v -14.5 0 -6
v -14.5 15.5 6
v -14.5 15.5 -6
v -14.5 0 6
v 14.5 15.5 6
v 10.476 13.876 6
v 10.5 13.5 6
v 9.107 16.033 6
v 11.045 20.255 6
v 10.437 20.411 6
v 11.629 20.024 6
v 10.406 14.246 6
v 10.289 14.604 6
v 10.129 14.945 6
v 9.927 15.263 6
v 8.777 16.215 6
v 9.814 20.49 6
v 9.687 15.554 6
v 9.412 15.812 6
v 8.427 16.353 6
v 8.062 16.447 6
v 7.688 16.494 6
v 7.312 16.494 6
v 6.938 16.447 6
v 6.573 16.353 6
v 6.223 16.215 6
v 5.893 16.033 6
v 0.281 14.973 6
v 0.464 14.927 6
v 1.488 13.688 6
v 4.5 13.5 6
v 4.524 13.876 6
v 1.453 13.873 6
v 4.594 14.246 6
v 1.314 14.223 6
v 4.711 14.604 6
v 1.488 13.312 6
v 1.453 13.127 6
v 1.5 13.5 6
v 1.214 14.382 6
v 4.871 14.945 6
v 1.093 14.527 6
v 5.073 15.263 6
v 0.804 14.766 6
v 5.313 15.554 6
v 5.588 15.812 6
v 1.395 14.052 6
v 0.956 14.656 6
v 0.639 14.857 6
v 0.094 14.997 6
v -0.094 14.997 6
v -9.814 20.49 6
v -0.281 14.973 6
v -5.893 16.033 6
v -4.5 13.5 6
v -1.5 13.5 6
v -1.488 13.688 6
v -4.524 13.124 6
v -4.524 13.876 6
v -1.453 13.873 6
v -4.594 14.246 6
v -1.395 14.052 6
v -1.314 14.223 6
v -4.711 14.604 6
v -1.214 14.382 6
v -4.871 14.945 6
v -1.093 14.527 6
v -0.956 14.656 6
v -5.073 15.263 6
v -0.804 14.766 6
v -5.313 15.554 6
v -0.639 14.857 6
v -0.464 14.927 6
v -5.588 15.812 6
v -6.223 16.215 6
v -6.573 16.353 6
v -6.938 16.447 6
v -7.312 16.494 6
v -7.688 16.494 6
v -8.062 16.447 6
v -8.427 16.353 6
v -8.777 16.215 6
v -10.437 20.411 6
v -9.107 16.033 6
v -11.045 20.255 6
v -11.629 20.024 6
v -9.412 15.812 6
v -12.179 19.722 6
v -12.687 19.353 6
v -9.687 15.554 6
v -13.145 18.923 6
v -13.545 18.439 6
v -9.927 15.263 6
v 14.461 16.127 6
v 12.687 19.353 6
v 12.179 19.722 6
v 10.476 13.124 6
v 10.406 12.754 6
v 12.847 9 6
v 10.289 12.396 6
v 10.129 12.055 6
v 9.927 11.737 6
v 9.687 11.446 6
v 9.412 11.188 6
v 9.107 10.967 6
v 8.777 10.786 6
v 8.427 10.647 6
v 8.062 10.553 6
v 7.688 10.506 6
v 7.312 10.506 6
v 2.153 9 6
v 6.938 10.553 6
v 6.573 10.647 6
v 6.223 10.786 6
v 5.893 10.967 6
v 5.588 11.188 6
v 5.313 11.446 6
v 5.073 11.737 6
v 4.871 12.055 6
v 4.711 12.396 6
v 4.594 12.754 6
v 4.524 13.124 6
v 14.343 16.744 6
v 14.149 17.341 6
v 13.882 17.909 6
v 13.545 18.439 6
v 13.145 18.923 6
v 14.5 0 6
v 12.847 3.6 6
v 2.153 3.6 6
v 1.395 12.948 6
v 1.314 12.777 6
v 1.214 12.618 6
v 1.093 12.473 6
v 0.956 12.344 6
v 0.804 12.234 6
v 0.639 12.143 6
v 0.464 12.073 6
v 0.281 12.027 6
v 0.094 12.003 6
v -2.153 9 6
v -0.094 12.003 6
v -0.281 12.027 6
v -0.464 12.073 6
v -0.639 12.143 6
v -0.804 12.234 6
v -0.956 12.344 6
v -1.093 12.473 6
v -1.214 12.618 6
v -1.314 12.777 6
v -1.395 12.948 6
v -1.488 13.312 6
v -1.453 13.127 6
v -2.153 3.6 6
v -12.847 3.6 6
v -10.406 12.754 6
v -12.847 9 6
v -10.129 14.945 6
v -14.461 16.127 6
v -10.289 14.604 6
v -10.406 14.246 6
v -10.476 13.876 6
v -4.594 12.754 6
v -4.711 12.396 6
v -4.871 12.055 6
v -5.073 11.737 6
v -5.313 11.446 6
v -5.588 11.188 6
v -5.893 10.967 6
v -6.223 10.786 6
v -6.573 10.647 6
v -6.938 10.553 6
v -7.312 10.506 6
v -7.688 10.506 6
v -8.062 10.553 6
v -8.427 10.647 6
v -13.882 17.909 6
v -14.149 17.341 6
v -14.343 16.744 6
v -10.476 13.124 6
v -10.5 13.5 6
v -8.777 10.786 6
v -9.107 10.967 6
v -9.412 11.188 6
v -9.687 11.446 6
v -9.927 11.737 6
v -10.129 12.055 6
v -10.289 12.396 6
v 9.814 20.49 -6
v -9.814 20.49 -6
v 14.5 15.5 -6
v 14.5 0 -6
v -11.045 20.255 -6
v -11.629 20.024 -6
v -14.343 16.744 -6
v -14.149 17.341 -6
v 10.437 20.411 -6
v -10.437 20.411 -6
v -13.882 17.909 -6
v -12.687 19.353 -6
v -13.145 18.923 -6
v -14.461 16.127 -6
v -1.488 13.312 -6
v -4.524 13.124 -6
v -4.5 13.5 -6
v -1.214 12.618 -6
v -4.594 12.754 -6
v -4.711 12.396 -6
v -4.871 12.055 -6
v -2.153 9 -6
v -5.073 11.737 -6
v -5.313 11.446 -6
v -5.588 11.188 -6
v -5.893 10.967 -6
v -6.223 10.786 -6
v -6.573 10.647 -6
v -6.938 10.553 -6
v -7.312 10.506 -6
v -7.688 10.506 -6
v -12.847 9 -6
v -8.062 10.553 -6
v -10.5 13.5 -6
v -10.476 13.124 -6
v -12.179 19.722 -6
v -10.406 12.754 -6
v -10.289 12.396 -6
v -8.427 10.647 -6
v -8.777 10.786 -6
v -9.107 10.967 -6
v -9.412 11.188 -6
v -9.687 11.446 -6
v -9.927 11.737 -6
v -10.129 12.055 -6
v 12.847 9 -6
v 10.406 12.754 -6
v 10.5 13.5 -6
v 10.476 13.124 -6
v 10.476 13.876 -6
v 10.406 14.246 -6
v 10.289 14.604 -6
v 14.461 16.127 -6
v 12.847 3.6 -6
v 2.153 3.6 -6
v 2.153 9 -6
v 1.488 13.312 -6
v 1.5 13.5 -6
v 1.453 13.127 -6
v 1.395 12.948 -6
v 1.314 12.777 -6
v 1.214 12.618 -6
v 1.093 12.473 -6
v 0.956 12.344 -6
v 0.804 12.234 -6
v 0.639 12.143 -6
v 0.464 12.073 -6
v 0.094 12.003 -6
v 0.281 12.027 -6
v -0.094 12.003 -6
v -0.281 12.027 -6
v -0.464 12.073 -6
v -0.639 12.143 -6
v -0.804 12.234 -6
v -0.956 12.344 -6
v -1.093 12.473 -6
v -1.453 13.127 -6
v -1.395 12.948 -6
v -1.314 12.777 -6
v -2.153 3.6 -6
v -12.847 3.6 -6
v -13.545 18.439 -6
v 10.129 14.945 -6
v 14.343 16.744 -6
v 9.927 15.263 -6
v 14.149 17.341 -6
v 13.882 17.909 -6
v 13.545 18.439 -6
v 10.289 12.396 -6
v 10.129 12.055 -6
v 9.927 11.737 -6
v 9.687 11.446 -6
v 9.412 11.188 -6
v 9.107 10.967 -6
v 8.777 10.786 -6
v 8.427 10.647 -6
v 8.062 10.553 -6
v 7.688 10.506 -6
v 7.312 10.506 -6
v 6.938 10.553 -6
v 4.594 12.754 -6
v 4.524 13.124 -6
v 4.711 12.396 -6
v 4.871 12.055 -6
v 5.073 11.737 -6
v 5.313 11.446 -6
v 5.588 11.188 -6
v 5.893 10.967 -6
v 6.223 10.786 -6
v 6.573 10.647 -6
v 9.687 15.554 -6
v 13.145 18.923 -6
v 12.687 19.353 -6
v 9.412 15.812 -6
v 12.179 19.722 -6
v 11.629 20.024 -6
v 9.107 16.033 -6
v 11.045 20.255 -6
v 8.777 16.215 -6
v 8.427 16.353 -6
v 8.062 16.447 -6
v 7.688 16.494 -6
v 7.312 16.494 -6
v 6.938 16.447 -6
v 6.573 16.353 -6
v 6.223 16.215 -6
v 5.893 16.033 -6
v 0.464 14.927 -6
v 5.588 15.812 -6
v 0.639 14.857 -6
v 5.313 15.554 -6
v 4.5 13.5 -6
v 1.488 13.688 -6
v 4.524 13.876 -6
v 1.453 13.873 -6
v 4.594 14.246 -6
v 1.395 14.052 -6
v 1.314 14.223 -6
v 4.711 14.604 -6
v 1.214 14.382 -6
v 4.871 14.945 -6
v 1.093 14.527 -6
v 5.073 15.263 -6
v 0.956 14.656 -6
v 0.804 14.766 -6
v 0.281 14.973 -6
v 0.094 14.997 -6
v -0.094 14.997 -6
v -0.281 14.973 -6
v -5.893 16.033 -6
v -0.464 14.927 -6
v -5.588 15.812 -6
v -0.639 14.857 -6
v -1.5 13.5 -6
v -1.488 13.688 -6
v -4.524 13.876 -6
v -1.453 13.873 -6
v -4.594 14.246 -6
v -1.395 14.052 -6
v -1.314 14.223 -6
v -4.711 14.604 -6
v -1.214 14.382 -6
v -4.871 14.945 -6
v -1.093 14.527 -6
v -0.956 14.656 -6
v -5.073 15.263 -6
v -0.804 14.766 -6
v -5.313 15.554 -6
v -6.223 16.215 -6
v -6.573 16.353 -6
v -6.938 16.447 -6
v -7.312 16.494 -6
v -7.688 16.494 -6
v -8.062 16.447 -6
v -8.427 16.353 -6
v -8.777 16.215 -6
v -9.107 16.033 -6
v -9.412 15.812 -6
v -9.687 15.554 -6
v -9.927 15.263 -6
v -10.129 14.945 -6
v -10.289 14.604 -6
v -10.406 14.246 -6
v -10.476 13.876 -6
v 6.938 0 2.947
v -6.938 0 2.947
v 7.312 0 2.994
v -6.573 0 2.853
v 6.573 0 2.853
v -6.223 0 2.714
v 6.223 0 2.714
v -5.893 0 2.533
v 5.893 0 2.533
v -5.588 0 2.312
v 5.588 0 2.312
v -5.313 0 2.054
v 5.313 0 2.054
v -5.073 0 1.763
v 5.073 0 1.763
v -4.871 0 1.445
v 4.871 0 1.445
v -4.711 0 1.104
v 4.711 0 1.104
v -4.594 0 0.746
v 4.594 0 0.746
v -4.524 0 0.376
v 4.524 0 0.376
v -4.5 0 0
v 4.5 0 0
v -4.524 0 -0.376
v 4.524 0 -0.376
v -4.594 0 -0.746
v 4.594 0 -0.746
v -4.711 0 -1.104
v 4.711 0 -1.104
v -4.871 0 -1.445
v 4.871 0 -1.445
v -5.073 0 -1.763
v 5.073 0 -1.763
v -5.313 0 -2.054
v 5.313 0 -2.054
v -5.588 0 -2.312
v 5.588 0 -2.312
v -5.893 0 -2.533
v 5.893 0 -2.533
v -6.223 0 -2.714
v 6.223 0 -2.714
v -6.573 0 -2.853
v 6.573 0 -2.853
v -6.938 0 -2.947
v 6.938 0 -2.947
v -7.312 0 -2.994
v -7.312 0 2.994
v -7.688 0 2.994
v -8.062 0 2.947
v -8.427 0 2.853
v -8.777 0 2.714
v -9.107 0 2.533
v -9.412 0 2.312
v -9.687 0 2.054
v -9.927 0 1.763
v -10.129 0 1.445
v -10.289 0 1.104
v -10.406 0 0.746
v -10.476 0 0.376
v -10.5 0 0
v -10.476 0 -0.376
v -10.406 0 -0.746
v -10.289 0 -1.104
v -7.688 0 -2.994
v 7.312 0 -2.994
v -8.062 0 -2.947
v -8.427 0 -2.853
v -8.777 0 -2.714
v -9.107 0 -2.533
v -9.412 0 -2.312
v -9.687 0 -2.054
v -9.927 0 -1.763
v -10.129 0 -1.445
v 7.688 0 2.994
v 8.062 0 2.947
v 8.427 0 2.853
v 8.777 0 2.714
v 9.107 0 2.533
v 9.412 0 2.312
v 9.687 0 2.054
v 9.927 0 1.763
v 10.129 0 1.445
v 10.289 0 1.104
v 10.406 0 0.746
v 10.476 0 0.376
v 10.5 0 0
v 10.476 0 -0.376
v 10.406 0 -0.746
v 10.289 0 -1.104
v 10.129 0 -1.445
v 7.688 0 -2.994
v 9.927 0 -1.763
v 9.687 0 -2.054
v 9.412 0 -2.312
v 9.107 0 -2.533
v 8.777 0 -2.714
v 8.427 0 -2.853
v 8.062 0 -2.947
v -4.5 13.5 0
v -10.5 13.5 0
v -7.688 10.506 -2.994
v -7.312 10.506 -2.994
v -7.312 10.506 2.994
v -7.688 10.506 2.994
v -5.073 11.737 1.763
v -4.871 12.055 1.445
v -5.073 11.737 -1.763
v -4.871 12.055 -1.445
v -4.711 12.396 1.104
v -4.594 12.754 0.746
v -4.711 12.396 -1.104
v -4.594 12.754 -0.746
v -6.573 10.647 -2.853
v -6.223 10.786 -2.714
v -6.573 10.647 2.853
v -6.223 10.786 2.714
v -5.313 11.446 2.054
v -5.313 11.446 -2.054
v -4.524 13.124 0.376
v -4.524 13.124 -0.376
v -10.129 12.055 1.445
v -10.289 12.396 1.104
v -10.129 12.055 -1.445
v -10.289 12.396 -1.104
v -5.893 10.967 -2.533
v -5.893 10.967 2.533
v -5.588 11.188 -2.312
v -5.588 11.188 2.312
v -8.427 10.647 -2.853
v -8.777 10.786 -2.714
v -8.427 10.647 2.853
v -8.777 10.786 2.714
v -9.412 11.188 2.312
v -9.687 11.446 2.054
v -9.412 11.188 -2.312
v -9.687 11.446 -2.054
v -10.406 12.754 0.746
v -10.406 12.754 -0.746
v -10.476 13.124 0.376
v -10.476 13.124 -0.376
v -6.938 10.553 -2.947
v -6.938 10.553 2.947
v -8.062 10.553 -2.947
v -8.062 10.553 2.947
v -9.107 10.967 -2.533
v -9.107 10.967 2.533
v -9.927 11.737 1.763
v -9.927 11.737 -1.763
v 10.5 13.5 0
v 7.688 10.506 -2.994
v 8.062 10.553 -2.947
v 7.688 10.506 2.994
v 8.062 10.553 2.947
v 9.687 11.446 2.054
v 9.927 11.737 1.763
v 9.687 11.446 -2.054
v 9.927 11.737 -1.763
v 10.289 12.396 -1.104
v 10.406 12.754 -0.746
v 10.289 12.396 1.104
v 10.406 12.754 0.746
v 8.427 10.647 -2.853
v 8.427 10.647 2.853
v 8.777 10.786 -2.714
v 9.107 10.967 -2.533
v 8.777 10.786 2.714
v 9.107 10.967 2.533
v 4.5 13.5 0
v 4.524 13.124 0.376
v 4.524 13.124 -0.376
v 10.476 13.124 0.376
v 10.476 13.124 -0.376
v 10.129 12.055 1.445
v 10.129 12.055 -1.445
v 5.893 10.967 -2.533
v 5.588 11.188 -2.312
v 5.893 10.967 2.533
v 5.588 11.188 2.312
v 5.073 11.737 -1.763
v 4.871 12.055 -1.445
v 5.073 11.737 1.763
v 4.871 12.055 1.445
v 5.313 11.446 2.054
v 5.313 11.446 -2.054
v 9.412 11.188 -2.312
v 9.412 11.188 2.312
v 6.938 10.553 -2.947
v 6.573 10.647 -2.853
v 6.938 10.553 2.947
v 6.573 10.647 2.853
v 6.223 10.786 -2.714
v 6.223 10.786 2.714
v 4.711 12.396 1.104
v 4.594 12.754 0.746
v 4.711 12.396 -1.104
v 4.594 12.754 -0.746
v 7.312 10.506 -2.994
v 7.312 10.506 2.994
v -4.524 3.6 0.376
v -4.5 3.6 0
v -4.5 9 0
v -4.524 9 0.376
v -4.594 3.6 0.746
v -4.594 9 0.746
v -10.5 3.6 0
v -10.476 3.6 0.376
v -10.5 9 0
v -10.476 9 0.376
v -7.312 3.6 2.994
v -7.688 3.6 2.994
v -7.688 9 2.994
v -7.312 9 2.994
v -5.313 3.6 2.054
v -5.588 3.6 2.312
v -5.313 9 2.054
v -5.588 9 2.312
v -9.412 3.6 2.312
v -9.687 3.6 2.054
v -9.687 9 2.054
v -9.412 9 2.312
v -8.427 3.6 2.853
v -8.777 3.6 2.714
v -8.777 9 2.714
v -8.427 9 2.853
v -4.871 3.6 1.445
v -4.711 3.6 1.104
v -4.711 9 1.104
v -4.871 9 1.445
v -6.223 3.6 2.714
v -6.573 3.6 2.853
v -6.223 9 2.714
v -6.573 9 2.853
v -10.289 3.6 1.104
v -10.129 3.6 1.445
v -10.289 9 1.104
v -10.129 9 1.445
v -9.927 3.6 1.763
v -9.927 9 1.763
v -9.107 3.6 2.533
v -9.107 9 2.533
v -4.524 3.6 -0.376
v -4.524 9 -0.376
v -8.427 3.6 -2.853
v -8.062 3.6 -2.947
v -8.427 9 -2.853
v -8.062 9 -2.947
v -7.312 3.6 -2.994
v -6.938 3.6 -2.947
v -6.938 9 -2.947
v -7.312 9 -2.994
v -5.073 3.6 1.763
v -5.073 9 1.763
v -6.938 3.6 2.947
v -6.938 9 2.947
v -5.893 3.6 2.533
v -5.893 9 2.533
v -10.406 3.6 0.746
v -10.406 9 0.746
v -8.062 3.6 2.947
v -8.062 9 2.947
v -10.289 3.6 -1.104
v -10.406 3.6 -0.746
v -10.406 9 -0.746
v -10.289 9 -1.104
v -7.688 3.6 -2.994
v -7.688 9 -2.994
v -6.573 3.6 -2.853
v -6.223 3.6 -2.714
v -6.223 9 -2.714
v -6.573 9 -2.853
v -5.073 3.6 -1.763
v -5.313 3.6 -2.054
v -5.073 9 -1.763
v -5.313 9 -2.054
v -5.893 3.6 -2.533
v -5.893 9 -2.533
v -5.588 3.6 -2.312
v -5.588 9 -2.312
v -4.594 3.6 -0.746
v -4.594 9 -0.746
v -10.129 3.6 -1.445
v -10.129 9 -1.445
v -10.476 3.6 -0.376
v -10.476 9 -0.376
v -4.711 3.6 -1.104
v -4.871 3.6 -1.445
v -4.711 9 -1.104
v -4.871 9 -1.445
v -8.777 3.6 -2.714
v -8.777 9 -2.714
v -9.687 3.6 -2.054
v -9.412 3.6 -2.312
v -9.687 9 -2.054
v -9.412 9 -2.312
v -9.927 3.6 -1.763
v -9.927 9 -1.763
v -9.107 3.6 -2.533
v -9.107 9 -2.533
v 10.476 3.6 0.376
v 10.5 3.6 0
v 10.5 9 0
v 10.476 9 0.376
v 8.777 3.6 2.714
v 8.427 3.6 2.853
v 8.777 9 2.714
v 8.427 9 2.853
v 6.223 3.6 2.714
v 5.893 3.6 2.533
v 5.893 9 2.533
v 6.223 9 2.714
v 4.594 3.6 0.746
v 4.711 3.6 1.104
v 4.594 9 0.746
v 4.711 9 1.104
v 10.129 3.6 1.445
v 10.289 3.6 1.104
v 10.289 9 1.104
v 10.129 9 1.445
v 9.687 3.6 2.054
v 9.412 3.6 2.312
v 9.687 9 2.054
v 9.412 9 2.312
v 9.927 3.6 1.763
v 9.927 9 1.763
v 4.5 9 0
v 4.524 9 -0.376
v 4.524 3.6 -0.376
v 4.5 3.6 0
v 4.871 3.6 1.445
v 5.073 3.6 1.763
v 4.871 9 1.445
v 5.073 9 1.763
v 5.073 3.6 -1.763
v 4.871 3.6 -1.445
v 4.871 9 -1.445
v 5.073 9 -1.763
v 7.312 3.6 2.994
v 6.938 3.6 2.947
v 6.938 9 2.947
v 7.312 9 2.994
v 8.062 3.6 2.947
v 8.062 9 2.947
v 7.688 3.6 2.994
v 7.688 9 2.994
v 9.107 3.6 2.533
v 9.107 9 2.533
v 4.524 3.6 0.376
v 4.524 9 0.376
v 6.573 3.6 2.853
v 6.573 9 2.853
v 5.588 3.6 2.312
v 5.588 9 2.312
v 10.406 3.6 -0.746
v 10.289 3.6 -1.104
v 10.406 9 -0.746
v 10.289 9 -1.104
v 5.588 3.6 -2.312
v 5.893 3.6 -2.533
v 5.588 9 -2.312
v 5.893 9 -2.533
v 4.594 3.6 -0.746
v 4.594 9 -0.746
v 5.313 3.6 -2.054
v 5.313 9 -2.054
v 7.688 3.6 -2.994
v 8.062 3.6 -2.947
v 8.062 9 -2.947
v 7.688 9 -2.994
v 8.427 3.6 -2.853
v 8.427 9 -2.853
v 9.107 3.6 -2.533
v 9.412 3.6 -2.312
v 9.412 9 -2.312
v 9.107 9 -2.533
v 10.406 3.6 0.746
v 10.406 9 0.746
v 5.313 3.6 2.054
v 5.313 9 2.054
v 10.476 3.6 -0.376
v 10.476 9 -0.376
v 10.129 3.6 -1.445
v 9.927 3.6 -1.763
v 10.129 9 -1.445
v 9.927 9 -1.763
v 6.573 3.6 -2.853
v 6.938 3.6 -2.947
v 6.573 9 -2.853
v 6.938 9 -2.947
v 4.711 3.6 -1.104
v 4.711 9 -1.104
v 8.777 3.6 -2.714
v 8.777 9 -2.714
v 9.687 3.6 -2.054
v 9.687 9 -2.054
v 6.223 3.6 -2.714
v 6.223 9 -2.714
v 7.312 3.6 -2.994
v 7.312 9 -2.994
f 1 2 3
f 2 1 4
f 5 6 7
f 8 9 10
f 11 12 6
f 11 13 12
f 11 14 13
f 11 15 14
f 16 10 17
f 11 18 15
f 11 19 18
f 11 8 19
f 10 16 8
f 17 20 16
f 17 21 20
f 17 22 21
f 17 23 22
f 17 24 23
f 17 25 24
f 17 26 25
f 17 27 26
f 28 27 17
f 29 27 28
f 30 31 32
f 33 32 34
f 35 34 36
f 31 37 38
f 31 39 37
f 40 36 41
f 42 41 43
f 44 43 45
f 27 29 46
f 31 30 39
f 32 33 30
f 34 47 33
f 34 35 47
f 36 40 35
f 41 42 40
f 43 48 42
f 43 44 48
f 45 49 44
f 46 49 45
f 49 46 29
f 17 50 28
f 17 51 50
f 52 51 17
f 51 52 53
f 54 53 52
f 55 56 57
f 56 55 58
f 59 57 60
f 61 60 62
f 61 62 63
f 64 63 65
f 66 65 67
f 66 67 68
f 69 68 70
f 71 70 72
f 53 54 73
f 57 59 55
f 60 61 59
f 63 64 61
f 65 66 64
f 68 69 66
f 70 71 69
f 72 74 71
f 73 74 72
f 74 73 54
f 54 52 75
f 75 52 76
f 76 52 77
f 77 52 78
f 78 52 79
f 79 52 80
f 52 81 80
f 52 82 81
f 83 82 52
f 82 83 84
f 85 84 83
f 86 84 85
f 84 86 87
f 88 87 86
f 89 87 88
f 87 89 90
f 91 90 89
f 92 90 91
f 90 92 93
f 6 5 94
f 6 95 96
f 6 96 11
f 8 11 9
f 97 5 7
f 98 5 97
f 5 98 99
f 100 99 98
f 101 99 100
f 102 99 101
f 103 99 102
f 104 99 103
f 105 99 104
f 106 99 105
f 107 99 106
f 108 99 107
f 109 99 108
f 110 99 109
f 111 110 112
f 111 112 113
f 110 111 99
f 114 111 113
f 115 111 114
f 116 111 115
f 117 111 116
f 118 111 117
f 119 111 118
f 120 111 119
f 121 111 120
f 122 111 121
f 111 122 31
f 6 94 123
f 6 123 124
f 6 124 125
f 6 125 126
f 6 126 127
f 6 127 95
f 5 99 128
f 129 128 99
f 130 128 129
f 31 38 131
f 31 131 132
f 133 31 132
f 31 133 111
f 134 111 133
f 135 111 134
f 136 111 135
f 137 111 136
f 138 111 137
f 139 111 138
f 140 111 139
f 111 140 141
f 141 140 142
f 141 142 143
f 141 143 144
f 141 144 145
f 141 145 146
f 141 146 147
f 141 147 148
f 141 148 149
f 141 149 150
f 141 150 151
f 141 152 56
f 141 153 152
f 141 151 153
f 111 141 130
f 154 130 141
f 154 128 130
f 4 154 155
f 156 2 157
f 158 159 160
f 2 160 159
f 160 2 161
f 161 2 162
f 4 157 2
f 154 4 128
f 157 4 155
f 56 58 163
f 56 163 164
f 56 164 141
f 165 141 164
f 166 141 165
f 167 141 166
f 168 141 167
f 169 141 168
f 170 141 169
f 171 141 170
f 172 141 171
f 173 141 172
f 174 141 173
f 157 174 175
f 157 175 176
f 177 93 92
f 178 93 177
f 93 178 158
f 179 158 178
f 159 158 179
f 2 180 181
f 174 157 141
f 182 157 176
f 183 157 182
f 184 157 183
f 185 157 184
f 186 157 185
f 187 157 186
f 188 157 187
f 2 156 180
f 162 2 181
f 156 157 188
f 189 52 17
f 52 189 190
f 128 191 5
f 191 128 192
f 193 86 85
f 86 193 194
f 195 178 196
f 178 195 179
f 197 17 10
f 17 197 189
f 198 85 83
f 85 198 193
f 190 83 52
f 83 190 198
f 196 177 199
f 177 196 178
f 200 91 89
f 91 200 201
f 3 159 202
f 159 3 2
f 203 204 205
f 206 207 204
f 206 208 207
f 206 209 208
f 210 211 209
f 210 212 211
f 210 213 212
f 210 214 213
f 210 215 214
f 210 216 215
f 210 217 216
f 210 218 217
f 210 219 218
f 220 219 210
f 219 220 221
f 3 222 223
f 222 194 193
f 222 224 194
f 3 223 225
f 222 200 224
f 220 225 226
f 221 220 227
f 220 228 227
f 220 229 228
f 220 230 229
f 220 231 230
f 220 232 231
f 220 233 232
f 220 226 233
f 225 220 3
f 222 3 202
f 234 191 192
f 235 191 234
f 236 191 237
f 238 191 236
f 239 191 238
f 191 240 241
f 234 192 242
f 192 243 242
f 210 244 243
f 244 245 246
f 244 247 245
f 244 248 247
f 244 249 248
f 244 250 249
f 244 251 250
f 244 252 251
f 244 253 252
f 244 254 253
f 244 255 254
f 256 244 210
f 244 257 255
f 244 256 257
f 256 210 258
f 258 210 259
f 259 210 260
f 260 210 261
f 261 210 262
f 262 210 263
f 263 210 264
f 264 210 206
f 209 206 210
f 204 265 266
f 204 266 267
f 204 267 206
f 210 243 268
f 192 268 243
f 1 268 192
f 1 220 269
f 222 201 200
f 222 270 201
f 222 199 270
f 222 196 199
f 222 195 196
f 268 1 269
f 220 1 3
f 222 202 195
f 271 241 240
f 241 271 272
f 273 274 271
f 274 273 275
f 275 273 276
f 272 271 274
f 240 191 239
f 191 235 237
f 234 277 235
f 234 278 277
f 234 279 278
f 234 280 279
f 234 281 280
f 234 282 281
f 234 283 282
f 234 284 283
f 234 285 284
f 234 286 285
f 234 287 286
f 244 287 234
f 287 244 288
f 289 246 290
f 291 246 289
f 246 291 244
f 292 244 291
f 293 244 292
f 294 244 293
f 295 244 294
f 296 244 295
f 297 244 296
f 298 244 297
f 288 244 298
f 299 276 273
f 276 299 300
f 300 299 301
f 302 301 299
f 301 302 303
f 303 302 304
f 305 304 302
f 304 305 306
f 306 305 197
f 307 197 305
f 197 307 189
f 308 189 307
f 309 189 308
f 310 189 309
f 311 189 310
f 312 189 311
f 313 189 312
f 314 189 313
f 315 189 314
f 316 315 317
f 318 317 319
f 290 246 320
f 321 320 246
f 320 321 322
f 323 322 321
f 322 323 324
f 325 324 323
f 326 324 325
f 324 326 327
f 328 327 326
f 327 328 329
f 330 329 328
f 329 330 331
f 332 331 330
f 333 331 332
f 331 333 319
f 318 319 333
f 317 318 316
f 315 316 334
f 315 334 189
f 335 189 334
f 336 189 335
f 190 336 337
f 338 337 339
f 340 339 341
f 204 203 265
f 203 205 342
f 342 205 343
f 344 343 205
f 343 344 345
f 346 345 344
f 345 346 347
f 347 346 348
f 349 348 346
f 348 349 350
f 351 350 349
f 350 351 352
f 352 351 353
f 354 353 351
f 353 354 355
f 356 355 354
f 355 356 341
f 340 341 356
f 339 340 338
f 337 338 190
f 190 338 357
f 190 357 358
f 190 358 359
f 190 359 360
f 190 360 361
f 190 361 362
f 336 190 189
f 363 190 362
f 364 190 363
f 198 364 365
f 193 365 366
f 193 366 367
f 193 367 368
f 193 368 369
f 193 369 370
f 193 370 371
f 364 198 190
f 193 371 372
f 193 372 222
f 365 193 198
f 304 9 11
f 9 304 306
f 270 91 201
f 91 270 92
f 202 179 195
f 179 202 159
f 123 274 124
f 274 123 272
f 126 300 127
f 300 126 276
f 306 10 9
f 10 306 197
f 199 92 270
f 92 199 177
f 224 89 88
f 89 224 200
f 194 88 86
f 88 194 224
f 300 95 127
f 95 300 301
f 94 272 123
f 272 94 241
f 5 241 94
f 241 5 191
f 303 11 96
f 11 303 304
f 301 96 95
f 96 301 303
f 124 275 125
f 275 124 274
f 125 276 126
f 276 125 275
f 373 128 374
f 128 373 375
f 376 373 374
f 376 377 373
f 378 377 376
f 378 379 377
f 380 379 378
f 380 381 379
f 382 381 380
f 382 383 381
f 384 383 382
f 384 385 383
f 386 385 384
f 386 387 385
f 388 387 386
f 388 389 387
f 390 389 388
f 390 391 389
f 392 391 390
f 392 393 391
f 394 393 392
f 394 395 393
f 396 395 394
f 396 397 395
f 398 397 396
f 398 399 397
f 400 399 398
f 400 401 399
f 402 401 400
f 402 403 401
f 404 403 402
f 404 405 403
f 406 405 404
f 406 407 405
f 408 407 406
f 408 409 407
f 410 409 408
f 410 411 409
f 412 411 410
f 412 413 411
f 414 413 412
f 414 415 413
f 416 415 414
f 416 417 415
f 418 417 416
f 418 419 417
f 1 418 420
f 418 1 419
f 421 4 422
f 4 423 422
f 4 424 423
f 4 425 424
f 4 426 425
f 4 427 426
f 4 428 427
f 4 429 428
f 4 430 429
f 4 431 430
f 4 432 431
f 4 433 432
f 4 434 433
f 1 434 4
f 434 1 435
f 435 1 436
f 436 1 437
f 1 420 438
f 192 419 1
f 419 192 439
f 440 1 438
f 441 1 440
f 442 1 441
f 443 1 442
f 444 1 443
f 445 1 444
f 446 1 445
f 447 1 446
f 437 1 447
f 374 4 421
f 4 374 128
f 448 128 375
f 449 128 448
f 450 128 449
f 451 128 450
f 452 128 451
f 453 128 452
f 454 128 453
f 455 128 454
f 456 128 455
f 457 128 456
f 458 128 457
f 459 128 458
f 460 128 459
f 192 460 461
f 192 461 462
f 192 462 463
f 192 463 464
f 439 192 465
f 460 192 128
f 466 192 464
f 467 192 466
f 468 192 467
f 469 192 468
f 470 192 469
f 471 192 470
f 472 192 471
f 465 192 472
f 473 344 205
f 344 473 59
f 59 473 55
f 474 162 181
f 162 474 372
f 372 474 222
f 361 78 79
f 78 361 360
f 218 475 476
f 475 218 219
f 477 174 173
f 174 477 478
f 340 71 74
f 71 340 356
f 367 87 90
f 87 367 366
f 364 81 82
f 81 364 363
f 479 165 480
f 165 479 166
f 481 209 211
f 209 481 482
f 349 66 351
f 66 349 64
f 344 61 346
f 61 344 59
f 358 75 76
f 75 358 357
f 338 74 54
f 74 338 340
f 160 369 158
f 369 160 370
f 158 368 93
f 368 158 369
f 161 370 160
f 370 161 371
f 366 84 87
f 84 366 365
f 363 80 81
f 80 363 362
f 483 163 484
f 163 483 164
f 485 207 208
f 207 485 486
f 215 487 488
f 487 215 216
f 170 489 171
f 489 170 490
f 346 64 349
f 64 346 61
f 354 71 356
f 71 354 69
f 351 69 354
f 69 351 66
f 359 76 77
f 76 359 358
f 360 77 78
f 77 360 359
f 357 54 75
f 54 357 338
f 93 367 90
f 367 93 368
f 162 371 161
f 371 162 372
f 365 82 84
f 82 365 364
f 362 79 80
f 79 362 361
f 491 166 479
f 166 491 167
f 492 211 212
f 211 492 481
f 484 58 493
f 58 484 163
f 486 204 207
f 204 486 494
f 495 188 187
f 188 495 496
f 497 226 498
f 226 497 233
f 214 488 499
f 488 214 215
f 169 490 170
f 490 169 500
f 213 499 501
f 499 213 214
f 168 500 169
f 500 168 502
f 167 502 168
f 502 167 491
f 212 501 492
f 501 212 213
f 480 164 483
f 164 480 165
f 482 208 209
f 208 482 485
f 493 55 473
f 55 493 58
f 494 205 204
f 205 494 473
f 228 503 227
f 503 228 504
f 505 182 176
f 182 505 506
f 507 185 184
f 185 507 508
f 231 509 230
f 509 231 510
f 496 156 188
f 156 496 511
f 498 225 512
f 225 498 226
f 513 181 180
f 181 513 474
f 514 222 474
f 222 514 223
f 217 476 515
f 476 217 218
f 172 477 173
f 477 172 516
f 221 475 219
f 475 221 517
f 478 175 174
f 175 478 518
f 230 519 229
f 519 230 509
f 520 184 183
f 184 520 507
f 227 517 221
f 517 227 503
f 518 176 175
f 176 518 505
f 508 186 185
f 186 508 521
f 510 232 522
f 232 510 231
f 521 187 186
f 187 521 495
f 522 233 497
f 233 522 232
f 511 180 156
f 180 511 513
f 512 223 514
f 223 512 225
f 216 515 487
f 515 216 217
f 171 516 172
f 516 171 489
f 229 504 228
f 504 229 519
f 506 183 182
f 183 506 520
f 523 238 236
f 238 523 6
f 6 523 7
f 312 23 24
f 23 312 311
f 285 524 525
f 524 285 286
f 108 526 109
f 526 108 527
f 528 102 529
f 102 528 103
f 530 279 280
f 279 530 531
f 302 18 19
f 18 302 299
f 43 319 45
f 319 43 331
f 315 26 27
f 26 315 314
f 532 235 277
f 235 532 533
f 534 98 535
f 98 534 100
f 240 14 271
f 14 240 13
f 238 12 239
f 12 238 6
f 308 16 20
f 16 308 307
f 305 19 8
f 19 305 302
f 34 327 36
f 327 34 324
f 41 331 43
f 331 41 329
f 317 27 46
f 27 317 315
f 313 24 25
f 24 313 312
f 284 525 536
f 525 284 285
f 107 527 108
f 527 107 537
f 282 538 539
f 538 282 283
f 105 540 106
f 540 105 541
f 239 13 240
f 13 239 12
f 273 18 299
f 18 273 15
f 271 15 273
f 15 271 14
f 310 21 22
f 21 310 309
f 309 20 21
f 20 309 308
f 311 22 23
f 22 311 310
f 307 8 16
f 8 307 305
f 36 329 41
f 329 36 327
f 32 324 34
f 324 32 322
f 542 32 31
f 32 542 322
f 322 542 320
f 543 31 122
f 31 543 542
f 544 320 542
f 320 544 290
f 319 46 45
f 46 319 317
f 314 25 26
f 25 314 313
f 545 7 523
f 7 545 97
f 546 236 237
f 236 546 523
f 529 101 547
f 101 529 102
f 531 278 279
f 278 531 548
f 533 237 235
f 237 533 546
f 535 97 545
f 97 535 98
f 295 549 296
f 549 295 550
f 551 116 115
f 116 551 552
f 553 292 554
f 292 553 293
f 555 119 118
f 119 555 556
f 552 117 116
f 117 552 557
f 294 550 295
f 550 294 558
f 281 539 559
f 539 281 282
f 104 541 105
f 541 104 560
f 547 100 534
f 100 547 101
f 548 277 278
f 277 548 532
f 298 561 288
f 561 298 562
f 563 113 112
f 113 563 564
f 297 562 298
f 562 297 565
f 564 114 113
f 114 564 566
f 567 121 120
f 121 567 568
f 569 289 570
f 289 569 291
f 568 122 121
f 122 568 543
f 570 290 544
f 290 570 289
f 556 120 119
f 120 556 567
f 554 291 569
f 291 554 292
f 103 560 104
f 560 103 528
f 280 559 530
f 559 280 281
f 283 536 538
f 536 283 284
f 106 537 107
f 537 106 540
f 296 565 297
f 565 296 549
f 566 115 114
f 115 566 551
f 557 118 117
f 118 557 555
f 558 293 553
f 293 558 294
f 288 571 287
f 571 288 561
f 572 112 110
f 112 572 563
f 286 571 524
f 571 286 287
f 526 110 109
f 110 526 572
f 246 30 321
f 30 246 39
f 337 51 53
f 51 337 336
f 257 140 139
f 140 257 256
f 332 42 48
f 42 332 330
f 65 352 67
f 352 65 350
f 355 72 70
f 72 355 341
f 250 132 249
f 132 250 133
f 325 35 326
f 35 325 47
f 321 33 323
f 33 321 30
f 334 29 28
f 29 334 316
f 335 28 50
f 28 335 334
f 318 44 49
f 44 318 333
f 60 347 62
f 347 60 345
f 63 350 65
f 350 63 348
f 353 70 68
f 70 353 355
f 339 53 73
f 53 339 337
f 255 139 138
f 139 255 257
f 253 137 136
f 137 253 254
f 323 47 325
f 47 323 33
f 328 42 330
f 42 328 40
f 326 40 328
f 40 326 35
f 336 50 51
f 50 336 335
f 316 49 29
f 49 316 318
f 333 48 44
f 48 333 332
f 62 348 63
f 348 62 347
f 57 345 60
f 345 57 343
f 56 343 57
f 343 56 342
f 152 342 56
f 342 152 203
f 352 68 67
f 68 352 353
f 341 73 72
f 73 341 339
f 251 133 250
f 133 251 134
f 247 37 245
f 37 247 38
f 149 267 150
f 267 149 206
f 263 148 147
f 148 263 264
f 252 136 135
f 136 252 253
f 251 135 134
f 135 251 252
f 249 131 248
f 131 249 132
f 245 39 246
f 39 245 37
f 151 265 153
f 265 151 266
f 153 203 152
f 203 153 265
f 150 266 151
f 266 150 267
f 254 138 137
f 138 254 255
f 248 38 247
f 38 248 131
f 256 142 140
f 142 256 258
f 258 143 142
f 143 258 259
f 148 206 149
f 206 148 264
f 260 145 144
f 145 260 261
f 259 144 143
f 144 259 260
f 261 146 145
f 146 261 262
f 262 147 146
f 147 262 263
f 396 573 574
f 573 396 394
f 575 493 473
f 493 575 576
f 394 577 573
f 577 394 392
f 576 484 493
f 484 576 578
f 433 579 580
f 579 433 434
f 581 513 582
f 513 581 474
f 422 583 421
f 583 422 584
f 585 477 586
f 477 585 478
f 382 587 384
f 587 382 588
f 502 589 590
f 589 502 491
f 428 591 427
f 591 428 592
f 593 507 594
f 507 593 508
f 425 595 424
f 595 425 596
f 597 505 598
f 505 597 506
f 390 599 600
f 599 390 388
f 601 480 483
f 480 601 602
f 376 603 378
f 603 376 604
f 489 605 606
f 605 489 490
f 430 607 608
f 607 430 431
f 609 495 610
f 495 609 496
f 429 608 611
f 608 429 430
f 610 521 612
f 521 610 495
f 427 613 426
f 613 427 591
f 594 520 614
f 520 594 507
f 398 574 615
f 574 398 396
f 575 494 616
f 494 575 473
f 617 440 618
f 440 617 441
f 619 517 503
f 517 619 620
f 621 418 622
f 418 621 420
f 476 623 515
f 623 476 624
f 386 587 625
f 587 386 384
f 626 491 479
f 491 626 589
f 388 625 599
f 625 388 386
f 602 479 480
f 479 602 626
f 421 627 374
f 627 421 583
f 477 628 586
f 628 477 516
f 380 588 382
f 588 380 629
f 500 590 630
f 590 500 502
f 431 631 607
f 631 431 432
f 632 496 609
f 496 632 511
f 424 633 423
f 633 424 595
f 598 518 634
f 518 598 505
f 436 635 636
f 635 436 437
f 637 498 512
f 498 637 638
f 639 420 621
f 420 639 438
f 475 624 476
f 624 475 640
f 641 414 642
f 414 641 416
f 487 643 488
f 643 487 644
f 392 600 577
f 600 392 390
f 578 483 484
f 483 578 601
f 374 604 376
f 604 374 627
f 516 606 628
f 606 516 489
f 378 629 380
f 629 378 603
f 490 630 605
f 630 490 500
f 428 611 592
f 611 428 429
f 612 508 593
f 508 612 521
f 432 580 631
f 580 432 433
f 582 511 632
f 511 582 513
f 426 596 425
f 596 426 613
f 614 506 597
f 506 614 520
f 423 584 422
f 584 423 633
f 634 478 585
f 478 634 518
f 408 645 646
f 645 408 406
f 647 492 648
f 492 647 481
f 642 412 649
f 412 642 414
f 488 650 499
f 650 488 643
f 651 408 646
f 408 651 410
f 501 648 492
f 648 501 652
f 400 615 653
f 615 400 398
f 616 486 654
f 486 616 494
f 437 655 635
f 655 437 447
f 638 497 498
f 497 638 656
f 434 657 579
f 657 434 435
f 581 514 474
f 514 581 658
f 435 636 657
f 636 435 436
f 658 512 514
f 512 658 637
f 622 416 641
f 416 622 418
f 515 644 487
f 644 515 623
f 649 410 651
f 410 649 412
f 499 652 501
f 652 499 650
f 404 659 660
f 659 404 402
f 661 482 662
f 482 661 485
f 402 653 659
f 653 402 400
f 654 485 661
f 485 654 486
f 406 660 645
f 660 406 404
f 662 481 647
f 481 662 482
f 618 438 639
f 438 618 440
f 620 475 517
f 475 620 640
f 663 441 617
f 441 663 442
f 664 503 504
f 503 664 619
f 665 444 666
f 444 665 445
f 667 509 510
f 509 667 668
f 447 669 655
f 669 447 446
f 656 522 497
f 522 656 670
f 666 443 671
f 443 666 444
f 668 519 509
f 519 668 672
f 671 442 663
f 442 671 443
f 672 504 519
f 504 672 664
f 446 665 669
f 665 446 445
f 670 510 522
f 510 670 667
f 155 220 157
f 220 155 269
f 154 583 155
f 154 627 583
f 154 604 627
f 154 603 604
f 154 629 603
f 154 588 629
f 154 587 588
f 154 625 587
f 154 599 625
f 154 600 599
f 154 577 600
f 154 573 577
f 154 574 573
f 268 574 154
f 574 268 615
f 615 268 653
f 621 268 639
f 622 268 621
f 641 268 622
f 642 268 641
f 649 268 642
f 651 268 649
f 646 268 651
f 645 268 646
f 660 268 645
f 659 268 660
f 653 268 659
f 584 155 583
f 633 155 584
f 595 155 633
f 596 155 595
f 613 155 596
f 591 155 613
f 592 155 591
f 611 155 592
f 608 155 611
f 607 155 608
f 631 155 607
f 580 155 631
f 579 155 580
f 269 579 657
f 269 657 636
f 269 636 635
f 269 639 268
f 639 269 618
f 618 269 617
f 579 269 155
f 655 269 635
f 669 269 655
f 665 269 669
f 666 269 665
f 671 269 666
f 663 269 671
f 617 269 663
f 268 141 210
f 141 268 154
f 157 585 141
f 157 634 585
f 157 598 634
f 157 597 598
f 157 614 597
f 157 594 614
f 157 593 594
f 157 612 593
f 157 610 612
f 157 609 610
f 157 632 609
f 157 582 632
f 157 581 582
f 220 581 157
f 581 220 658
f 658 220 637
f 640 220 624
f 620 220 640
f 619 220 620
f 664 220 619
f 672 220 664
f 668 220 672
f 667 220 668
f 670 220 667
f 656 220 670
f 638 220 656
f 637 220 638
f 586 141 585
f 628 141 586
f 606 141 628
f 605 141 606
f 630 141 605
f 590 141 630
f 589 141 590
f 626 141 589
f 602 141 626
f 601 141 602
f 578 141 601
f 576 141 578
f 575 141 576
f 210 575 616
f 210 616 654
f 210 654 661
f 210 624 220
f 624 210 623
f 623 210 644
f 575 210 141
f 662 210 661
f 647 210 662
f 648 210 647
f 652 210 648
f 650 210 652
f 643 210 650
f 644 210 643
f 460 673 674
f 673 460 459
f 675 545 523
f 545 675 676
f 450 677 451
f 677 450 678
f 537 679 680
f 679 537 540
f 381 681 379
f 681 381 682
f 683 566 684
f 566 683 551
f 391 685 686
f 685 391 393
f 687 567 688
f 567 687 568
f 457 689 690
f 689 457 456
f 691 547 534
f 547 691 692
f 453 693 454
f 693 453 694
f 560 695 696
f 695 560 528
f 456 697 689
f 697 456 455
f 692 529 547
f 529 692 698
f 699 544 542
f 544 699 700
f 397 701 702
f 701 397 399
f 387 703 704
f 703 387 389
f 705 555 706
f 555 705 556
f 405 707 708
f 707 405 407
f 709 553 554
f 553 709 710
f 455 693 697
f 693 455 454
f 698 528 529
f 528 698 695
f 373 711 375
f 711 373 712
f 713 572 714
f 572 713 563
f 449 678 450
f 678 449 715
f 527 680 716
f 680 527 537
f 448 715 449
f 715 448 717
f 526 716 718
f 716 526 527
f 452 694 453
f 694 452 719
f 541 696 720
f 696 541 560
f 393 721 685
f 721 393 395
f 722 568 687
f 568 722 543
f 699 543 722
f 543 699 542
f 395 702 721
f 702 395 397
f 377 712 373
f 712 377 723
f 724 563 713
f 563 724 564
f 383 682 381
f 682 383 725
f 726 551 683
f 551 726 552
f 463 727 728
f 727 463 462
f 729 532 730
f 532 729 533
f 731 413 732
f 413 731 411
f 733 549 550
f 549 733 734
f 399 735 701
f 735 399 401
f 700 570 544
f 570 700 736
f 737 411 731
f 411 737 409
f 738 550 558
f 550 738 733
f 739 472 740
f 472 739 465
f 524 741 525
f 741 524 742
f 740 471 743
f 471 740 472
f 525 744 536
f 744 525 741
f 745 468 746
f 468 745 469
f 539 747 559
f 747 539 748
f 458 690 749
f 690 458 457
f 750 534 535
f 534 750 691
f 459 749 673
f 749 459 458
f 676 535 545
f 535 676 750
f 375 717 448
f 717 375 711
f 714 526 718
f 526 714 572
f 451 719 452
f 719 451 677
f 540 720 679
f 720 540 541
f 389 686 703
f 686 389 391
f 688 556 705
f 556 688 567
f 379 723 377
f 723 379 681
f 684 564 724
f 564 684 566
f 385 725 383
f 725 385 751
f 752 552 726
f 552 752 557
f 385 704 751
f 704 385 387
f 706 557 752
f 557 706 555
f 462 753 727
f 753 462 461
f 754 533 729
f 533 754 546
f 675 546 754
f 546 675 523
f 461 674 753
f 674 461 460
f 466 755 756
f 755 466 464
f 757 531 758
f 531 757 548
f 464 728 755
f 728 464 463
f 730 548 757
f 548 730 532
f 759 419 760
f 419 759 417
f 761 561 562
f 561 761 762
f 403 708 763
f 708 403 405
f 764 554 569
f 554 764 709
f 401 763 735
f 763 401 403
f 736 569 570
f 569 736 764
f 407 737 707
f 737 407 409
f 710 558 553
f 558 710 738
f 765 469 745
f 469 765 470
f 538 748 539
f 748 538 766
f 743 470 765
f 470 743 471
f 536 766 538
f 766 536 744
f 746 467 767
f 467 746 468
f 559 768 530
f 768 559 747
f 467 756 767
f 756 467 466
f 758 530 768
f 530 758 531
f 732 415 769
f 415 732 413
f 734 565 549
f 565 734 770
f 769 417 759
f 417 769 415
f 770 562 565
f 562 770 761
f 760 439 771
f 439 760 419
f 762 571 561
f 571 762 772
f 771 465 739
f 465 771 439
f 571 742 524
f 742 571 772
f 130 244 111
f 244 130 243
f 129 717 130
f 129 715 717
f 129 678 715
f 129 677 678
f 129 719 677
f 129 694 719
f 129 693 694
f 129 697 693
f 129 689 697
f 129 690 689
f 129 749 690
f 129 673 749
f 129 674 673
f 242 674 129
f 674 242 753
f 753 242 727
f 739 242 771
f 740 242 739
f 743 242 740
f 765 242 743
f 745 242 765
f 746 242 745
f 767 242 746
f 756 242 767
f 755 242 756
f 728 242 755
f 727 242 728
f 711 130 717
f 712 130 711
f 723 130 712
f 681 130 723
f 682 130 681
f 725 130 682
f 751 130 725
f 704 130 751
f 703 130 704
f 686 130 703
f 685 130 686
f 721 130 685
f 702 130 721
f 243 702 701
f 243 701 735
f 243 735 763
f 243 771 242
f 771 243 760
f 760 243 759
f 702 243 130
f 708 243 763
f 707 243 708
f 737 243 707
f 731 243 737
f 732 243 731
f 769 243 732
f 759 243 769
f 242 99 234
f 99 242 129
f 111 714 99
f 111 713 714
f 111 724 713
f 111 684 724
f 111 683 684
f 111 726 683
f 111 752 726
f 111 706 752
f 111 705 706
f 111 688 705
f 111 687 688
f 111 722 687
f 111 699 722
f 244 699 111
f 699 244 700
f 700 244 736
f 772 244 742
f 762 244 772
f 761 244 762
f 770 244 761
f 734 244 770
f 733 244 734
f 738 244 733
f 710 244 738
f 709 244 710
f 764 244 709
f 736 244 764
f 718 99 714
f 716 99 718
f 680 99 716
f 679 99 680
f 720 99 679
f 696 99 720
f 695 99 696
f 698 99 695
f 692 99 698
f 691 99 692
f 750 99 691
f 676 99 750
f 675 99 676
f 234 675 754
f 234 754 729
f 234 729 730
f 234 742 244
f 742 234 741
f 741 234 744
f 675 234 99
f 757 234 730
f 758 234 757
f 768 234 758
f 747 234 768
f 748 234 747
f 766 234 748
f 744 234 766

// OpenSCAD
$fn = 50;


difference() {
	union() {
		translate(v = [0, 13.5000000000, -6.0000000000]) {
			rotate(a = [0, 0, 0]) {
				hull() {
					translate(v = [-9.5000000000, 2.0000000000, 0]) {
						rotate(a = [0, 0, 0]) {
							translate(v = [0, 0, 0]) {
								rotate(a = [0, 0, 0]) {
									cylinder(h = 12, r = 5);
								}
							}
						}
					}
					translate(v = [9.5000000000, 2.0000000000, 0]) {
						rotate(a = [0, 0, 0]) {
							translate(v = [0, 0, 0]) {
								rotate(a = [0, 0, 0]) {
									cylinder(h = 12, r = 5);
								}
							}
						}
					}
					translate(v = [-9.5000000000, -2.0000000000, 0]) {
						rotate(a = [0, 0, 0]) {
							translate(v = [0, 0, 0]) {
								rotate(a = [0, 0, 0]) {
									cylinder(h = 12, r = 5);
								}
							}
						}
					}
					translate(v = [9.5000000000, -2.0000000000, 0]) {
						rotate(a = [0, 0, 0]) {
							translate(v = [0, 0, 0]) {
								rotate(a = [0, 0, 0]) {
									cylinder(h = 12, r = 5);
								}
							}
						}
					}
				}
			}
		}
		translate(v = [-14.5000000000, 0, -6.0000000000]) {
			rotate(a = [0, 0, 0]) {
				cube(size = [29, 13.5000000000, 12]);
			}
		}
	}
	union() {
		translate(v = [-7.5000000000, 13.5000000000, -6.0000000000]) {
			rotate(a = [0, 0, 0]) {
				translate(v = [0, 0, -50]) {
					rotate(a = [0, 0, 0]) {
						cylinder(h = 100, r = 3.0000000000);
					}
				}
			}
		}
		translate(v = [7.5000000000, 13.5000000000, -6.0000000000]) {
			rotate(a = [0, 0, 0]) {
				translate(v = [0, 0, -50]) {
					rotate(a = [0, 0, 0]) {
						cylinder(h = 100, r = 3.0000000000);
					}
				}
			}
		}
		translate(v = [-7.5000000000, 13.5000000000, -6.0000000000]) {
			rotate(a = [0, 0, 0]) {
				translate(v = [0, 0, -50]) {
					rotate(a = [0, 0, 0]) {
						cylinder(h = 100, r = 1.5000000000);
					}
				}
			}
		}
		translate(v = [0.0000000000, 13.5000000000, -6.0000000000]) {
			rotate(a = [0, 0, 0]) {
				translate(v = [0, 0, -50]) {
					rotate(a = [0, 0, 0]) {
						cylinder(h = 100, r = 1.5000000000);
					}
				}
			}
		}
		translate(v = [7.5000000000, 13.5000000000, -6.0000000000]) {
			rotate(a = [0, 0, 0]) {
				translate(v = [0, 0, -50]) {
					rotate(a = [0, 0, 0]) {
						cylinder(h = 100, r = 1.5000000000);
					}
				}
			}
		}
		translate(v = [-7.5000000000, 13.5000000000, 0]) {
			rotate(a = [90, 0, 0]) {
				cylinder(h = 13.5000000000, r = 3.0000000000);
			}
		}
		translate(v = [-12.8466204506, 9, -25]) {
			rotate(a = [90, 0, 0]) {
				cube(size = [10.6932409012, 100, 5.4000000000]);
			}
		}
		translate(v = [7.5000000000, 13.5000000000, 0]) {
			rotate(a = [90, 0, 0]) {
				cylinder(h = 13.5000000000, r = 3.0000000000);
			}
		}
		translate(v = [2.1533795494, 9, -25]) {
			rotate(a = [90, 0, 0]) {
				cube(size = [10.6932409012, 100, 5.4000000000]);
			}
		}
	}
}
